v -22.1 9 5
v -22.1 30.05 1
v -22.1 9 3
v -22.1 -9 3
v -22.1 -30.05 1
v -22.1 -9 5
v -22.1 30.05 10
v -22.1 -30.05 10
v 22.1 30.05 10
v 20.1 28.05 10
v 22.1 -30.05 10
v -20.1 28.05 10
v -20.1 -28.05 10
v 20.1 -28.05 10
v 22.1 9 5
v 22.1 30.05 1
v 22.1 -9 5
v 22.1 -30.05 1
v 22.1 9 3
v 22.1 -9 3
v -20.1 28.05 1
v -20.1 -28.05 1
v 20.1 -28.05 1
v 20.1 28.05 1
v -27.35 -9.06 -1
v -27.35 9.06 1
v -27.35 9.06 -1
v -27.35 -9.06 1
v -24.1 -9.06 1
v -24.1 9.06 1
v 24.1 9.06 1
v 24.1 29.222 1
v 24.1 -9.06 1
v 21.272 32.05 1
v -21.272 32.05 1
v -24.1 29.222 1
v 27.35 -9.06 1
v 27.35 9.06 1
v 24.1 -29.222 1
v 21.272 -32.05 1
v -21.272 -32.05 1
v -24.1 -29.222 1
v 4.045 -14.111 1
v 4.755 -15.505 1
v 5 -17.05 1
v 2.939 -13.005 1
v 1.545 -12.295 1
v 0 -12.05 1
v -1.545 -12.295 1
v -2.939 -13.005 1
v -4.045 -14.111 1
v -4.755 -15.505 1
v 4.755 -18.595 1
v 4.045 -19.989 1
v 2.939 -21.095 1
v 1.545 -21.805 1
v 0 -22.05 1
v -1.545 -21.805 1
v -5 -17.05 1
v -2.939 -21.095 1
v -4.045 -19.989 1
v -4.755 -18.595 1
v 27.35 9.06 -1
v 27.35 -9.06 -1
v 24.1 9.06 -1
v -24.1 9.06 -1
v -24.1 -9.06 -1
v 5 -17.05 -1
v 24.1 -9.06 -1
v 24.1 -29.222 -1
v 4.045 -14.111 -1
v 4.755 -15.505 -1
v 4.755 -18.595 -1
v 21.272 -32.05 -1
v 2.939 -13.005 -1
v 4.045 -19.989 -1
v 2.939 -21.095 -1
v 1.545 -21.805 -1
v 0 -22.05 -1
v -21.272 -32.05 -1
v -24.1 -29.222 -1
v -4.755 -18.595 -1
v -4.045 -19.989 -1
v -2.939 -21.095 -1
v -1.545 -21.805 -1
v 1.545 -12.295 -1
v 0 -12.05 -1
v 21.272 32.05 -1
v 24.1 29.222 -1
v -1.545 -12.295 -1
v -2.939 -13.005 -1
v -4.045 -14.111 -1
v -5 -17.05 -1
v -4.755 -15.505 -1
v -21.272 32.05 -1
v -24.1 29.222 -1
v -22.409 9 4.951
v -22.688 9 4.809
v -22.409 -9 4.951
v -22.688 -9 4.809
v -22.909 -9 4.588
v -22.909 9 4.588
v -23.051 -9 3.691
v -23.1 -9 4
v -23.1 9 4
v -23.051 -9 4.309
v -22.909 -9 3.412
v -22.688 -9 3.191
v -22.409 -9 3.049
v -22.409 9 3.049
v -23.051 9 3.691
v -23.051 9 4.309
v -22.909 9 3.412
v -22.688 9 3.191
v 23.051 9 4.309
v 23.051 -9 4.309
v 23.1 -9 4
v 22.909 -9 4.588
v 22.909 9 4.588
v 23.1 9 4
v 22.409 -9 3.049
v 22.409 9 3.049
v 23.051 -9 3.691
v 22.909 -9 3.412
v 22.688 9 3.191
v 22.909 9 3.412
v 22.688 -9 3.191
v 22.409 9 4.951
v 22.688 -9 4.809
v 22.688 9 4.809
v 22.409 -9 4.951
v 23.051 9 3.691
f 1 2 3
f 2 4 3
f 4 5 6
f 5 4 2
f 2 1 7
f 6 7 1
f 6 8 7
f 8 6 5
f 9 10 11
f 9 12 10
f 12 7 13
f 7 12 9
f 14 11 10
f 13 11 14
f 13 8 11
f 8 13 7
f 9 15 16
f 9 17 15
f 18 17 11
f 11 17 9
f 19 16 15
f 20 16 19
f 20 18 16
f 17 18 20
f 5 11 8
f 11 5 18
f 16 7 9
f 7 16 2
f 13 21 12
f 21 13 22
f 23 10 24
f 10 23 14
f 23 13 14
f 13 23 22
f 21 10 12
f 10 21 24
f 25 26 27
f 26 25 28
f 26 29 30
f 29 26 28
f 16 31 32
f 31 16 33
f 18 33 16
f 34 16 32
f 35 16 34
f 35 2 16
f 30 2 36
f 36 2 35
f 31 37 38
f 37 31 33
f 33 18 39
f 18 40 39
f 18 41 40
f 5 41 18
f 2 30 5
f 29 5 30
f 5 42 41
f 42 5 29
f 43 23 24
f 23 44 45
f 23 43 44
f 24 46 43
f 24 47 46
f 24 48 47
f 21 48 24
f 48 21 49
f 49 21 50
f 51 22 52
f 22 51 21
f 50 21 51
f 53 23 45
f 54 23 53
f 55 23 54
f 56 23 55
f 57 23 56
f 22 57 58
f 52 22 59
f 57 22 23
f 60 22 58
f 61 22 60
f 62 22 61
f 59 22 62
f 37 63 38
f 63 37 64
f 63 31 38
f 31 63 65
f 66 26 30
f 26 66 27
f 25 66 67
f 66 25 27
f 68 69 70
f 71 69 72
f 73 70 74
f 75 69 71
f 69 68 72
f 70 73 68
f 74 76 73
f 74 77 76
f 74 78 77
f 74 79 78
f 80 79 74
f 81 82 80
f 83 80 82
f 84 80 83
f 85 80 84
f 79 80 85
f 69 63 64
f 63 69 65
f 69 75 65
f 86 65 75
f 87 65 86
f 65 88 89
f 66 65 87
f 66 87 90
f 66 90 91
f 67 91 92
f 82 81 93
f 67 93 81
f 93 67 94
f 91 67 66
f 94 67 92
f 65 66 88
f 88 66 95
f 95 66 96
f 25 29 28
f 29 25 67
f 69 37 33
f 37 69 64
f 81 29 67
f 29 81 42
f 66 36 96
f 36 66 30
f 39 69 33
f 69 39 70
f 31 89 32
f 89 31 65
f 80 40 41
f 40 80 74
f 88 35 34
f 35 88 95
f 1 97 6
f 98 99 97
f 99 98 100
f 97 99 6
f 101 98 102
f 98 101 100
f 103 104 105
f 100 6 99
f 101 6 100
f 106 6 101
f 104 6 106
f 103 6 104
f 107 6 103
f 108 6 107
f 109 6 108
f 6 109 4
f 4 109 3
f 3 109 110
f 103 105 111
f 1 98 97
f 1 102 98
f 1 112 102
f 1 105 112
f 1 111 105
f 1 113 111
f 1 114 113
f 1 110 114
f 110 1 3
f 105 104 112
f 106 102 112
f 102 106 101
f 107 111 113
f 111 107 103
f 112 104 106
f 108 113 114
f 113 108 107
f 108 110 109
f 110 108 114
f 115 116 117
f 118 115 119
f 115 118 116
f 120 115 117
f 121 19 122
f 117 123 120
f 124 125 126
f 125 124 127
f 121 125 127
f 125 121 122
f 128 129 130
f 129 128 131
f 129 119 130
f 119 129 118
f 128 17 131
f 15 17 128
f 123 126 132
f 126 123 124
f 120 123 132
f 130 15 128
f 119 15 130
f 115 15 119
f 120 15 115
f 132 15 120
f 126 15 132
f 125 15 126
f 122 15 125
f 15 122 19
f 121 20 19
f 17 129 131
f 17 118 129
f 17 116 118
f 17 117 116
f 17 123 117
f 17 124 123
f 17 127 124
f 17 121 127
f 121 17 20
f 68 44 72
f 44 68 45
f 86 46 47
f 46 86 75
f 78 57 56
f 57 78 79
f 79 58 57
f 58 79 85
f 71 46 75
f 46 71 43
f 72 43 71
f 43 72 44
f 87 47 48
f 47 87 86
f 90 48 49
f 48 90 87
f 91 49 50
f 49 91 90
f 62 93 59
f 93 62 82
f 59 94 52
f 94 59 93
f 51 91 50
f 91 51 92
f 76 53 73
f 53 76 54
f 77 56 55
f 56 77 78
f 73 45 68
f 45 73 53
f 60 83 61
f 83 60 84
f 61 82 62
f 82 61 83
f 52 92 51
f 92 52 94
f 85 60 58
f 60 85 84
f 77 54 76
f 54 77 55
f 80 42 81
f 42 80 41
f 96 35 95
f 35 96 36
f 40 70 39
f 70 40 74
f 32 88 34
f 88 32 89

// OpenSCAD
width=48.2;
height=64.1;

int_width=44.2;
int_height=60.1;
int_depth = 10;

difference() {
  union() {
    //wings
    cube([width+6.5,18.12,2], true);
    
    //plate
    cube([width,height,2], true);

    difference() {
      translate([0,0,5]) {
        cube([int_width, int_height, int_depth], true);
      }
      translate([0,0,4.1]) {
        cube([int_width-4, int_height-4, int_depth+2], true);
      }
    } // give me some height to press fit into with...

    translate([-(int_width/2), 0,4]) { rotate([90,0,0]) { cylinder(d=2, h=18, $fn=20, center=true); } } // a nubbin to latch
    translate([ (int_width/2), 0,4]) { rotate([90,0,0]) { cylinder(d=2, h=18, $fn=20, center=true); } } // a nubbin to latch
  }
  
  translate([0,-(height/2)+15,0]) { cylinder(d=10, h=50, $fn=20, center=true); } // bind button

  translate([-(width/2),-(height/2),0]) { rotate([0,0,45]) { cube([4,4,4], true); } } // knock off the corner
  translate([-(width/2), (height/2),0]) { rotate([0,0,45]) { cube([4,4,4], true); } } // knock off the corner
  translate([ (width/2),-(height/2),0]) { rotate([0,0,45]) { cube([4,4,4], true); } } // knock off the corner
  translate([ (width/2), (height/2),0]) { rotate([0,0,45]) { cube([4,4,4], true); } } // knock off the corner
}

//translate([0,0,3]) { cube([45.2,1,3], center=true); }

/*
module friction() {
  difference() {
    union() {
      translate([0,0,(int_depth/2)]) { rotate([0,45,0]) { cube([sqrt(2),2,sqrt(2)], true); } } 
      translate([0,0,.5]) { cube([2,2,int_depth-1], true); } 
    }
    translate([2,0,1]) { cube([4,4,int_depth+2], true); }
  }
}

translate([-(int_width/2),  20, (int_depth/2)-1]) { rotate([0,0,0]) { friction(); } }
translate([-(int_width/2), -20, (int_depth/2)-1]) { rotate([0,0,0]) { friction(); } }

translate([ (int_width/2),  20, (int_depth/2)-1]) { rotate([0,0,180]) { friction(); } }
translate([ (int_width/2), -20, (int_depth/2)-1]) { rotate([0,0,180]) { friction(); } }

translate([0,   (int_height/2), (int_depth/2)-1]) { rotate([0,0,-90]) { friction(); } }
translate([0,  -(int_height/2), (int_depth/2)-1]) { rotate([0,0,90]) { friction(); } }
*/
